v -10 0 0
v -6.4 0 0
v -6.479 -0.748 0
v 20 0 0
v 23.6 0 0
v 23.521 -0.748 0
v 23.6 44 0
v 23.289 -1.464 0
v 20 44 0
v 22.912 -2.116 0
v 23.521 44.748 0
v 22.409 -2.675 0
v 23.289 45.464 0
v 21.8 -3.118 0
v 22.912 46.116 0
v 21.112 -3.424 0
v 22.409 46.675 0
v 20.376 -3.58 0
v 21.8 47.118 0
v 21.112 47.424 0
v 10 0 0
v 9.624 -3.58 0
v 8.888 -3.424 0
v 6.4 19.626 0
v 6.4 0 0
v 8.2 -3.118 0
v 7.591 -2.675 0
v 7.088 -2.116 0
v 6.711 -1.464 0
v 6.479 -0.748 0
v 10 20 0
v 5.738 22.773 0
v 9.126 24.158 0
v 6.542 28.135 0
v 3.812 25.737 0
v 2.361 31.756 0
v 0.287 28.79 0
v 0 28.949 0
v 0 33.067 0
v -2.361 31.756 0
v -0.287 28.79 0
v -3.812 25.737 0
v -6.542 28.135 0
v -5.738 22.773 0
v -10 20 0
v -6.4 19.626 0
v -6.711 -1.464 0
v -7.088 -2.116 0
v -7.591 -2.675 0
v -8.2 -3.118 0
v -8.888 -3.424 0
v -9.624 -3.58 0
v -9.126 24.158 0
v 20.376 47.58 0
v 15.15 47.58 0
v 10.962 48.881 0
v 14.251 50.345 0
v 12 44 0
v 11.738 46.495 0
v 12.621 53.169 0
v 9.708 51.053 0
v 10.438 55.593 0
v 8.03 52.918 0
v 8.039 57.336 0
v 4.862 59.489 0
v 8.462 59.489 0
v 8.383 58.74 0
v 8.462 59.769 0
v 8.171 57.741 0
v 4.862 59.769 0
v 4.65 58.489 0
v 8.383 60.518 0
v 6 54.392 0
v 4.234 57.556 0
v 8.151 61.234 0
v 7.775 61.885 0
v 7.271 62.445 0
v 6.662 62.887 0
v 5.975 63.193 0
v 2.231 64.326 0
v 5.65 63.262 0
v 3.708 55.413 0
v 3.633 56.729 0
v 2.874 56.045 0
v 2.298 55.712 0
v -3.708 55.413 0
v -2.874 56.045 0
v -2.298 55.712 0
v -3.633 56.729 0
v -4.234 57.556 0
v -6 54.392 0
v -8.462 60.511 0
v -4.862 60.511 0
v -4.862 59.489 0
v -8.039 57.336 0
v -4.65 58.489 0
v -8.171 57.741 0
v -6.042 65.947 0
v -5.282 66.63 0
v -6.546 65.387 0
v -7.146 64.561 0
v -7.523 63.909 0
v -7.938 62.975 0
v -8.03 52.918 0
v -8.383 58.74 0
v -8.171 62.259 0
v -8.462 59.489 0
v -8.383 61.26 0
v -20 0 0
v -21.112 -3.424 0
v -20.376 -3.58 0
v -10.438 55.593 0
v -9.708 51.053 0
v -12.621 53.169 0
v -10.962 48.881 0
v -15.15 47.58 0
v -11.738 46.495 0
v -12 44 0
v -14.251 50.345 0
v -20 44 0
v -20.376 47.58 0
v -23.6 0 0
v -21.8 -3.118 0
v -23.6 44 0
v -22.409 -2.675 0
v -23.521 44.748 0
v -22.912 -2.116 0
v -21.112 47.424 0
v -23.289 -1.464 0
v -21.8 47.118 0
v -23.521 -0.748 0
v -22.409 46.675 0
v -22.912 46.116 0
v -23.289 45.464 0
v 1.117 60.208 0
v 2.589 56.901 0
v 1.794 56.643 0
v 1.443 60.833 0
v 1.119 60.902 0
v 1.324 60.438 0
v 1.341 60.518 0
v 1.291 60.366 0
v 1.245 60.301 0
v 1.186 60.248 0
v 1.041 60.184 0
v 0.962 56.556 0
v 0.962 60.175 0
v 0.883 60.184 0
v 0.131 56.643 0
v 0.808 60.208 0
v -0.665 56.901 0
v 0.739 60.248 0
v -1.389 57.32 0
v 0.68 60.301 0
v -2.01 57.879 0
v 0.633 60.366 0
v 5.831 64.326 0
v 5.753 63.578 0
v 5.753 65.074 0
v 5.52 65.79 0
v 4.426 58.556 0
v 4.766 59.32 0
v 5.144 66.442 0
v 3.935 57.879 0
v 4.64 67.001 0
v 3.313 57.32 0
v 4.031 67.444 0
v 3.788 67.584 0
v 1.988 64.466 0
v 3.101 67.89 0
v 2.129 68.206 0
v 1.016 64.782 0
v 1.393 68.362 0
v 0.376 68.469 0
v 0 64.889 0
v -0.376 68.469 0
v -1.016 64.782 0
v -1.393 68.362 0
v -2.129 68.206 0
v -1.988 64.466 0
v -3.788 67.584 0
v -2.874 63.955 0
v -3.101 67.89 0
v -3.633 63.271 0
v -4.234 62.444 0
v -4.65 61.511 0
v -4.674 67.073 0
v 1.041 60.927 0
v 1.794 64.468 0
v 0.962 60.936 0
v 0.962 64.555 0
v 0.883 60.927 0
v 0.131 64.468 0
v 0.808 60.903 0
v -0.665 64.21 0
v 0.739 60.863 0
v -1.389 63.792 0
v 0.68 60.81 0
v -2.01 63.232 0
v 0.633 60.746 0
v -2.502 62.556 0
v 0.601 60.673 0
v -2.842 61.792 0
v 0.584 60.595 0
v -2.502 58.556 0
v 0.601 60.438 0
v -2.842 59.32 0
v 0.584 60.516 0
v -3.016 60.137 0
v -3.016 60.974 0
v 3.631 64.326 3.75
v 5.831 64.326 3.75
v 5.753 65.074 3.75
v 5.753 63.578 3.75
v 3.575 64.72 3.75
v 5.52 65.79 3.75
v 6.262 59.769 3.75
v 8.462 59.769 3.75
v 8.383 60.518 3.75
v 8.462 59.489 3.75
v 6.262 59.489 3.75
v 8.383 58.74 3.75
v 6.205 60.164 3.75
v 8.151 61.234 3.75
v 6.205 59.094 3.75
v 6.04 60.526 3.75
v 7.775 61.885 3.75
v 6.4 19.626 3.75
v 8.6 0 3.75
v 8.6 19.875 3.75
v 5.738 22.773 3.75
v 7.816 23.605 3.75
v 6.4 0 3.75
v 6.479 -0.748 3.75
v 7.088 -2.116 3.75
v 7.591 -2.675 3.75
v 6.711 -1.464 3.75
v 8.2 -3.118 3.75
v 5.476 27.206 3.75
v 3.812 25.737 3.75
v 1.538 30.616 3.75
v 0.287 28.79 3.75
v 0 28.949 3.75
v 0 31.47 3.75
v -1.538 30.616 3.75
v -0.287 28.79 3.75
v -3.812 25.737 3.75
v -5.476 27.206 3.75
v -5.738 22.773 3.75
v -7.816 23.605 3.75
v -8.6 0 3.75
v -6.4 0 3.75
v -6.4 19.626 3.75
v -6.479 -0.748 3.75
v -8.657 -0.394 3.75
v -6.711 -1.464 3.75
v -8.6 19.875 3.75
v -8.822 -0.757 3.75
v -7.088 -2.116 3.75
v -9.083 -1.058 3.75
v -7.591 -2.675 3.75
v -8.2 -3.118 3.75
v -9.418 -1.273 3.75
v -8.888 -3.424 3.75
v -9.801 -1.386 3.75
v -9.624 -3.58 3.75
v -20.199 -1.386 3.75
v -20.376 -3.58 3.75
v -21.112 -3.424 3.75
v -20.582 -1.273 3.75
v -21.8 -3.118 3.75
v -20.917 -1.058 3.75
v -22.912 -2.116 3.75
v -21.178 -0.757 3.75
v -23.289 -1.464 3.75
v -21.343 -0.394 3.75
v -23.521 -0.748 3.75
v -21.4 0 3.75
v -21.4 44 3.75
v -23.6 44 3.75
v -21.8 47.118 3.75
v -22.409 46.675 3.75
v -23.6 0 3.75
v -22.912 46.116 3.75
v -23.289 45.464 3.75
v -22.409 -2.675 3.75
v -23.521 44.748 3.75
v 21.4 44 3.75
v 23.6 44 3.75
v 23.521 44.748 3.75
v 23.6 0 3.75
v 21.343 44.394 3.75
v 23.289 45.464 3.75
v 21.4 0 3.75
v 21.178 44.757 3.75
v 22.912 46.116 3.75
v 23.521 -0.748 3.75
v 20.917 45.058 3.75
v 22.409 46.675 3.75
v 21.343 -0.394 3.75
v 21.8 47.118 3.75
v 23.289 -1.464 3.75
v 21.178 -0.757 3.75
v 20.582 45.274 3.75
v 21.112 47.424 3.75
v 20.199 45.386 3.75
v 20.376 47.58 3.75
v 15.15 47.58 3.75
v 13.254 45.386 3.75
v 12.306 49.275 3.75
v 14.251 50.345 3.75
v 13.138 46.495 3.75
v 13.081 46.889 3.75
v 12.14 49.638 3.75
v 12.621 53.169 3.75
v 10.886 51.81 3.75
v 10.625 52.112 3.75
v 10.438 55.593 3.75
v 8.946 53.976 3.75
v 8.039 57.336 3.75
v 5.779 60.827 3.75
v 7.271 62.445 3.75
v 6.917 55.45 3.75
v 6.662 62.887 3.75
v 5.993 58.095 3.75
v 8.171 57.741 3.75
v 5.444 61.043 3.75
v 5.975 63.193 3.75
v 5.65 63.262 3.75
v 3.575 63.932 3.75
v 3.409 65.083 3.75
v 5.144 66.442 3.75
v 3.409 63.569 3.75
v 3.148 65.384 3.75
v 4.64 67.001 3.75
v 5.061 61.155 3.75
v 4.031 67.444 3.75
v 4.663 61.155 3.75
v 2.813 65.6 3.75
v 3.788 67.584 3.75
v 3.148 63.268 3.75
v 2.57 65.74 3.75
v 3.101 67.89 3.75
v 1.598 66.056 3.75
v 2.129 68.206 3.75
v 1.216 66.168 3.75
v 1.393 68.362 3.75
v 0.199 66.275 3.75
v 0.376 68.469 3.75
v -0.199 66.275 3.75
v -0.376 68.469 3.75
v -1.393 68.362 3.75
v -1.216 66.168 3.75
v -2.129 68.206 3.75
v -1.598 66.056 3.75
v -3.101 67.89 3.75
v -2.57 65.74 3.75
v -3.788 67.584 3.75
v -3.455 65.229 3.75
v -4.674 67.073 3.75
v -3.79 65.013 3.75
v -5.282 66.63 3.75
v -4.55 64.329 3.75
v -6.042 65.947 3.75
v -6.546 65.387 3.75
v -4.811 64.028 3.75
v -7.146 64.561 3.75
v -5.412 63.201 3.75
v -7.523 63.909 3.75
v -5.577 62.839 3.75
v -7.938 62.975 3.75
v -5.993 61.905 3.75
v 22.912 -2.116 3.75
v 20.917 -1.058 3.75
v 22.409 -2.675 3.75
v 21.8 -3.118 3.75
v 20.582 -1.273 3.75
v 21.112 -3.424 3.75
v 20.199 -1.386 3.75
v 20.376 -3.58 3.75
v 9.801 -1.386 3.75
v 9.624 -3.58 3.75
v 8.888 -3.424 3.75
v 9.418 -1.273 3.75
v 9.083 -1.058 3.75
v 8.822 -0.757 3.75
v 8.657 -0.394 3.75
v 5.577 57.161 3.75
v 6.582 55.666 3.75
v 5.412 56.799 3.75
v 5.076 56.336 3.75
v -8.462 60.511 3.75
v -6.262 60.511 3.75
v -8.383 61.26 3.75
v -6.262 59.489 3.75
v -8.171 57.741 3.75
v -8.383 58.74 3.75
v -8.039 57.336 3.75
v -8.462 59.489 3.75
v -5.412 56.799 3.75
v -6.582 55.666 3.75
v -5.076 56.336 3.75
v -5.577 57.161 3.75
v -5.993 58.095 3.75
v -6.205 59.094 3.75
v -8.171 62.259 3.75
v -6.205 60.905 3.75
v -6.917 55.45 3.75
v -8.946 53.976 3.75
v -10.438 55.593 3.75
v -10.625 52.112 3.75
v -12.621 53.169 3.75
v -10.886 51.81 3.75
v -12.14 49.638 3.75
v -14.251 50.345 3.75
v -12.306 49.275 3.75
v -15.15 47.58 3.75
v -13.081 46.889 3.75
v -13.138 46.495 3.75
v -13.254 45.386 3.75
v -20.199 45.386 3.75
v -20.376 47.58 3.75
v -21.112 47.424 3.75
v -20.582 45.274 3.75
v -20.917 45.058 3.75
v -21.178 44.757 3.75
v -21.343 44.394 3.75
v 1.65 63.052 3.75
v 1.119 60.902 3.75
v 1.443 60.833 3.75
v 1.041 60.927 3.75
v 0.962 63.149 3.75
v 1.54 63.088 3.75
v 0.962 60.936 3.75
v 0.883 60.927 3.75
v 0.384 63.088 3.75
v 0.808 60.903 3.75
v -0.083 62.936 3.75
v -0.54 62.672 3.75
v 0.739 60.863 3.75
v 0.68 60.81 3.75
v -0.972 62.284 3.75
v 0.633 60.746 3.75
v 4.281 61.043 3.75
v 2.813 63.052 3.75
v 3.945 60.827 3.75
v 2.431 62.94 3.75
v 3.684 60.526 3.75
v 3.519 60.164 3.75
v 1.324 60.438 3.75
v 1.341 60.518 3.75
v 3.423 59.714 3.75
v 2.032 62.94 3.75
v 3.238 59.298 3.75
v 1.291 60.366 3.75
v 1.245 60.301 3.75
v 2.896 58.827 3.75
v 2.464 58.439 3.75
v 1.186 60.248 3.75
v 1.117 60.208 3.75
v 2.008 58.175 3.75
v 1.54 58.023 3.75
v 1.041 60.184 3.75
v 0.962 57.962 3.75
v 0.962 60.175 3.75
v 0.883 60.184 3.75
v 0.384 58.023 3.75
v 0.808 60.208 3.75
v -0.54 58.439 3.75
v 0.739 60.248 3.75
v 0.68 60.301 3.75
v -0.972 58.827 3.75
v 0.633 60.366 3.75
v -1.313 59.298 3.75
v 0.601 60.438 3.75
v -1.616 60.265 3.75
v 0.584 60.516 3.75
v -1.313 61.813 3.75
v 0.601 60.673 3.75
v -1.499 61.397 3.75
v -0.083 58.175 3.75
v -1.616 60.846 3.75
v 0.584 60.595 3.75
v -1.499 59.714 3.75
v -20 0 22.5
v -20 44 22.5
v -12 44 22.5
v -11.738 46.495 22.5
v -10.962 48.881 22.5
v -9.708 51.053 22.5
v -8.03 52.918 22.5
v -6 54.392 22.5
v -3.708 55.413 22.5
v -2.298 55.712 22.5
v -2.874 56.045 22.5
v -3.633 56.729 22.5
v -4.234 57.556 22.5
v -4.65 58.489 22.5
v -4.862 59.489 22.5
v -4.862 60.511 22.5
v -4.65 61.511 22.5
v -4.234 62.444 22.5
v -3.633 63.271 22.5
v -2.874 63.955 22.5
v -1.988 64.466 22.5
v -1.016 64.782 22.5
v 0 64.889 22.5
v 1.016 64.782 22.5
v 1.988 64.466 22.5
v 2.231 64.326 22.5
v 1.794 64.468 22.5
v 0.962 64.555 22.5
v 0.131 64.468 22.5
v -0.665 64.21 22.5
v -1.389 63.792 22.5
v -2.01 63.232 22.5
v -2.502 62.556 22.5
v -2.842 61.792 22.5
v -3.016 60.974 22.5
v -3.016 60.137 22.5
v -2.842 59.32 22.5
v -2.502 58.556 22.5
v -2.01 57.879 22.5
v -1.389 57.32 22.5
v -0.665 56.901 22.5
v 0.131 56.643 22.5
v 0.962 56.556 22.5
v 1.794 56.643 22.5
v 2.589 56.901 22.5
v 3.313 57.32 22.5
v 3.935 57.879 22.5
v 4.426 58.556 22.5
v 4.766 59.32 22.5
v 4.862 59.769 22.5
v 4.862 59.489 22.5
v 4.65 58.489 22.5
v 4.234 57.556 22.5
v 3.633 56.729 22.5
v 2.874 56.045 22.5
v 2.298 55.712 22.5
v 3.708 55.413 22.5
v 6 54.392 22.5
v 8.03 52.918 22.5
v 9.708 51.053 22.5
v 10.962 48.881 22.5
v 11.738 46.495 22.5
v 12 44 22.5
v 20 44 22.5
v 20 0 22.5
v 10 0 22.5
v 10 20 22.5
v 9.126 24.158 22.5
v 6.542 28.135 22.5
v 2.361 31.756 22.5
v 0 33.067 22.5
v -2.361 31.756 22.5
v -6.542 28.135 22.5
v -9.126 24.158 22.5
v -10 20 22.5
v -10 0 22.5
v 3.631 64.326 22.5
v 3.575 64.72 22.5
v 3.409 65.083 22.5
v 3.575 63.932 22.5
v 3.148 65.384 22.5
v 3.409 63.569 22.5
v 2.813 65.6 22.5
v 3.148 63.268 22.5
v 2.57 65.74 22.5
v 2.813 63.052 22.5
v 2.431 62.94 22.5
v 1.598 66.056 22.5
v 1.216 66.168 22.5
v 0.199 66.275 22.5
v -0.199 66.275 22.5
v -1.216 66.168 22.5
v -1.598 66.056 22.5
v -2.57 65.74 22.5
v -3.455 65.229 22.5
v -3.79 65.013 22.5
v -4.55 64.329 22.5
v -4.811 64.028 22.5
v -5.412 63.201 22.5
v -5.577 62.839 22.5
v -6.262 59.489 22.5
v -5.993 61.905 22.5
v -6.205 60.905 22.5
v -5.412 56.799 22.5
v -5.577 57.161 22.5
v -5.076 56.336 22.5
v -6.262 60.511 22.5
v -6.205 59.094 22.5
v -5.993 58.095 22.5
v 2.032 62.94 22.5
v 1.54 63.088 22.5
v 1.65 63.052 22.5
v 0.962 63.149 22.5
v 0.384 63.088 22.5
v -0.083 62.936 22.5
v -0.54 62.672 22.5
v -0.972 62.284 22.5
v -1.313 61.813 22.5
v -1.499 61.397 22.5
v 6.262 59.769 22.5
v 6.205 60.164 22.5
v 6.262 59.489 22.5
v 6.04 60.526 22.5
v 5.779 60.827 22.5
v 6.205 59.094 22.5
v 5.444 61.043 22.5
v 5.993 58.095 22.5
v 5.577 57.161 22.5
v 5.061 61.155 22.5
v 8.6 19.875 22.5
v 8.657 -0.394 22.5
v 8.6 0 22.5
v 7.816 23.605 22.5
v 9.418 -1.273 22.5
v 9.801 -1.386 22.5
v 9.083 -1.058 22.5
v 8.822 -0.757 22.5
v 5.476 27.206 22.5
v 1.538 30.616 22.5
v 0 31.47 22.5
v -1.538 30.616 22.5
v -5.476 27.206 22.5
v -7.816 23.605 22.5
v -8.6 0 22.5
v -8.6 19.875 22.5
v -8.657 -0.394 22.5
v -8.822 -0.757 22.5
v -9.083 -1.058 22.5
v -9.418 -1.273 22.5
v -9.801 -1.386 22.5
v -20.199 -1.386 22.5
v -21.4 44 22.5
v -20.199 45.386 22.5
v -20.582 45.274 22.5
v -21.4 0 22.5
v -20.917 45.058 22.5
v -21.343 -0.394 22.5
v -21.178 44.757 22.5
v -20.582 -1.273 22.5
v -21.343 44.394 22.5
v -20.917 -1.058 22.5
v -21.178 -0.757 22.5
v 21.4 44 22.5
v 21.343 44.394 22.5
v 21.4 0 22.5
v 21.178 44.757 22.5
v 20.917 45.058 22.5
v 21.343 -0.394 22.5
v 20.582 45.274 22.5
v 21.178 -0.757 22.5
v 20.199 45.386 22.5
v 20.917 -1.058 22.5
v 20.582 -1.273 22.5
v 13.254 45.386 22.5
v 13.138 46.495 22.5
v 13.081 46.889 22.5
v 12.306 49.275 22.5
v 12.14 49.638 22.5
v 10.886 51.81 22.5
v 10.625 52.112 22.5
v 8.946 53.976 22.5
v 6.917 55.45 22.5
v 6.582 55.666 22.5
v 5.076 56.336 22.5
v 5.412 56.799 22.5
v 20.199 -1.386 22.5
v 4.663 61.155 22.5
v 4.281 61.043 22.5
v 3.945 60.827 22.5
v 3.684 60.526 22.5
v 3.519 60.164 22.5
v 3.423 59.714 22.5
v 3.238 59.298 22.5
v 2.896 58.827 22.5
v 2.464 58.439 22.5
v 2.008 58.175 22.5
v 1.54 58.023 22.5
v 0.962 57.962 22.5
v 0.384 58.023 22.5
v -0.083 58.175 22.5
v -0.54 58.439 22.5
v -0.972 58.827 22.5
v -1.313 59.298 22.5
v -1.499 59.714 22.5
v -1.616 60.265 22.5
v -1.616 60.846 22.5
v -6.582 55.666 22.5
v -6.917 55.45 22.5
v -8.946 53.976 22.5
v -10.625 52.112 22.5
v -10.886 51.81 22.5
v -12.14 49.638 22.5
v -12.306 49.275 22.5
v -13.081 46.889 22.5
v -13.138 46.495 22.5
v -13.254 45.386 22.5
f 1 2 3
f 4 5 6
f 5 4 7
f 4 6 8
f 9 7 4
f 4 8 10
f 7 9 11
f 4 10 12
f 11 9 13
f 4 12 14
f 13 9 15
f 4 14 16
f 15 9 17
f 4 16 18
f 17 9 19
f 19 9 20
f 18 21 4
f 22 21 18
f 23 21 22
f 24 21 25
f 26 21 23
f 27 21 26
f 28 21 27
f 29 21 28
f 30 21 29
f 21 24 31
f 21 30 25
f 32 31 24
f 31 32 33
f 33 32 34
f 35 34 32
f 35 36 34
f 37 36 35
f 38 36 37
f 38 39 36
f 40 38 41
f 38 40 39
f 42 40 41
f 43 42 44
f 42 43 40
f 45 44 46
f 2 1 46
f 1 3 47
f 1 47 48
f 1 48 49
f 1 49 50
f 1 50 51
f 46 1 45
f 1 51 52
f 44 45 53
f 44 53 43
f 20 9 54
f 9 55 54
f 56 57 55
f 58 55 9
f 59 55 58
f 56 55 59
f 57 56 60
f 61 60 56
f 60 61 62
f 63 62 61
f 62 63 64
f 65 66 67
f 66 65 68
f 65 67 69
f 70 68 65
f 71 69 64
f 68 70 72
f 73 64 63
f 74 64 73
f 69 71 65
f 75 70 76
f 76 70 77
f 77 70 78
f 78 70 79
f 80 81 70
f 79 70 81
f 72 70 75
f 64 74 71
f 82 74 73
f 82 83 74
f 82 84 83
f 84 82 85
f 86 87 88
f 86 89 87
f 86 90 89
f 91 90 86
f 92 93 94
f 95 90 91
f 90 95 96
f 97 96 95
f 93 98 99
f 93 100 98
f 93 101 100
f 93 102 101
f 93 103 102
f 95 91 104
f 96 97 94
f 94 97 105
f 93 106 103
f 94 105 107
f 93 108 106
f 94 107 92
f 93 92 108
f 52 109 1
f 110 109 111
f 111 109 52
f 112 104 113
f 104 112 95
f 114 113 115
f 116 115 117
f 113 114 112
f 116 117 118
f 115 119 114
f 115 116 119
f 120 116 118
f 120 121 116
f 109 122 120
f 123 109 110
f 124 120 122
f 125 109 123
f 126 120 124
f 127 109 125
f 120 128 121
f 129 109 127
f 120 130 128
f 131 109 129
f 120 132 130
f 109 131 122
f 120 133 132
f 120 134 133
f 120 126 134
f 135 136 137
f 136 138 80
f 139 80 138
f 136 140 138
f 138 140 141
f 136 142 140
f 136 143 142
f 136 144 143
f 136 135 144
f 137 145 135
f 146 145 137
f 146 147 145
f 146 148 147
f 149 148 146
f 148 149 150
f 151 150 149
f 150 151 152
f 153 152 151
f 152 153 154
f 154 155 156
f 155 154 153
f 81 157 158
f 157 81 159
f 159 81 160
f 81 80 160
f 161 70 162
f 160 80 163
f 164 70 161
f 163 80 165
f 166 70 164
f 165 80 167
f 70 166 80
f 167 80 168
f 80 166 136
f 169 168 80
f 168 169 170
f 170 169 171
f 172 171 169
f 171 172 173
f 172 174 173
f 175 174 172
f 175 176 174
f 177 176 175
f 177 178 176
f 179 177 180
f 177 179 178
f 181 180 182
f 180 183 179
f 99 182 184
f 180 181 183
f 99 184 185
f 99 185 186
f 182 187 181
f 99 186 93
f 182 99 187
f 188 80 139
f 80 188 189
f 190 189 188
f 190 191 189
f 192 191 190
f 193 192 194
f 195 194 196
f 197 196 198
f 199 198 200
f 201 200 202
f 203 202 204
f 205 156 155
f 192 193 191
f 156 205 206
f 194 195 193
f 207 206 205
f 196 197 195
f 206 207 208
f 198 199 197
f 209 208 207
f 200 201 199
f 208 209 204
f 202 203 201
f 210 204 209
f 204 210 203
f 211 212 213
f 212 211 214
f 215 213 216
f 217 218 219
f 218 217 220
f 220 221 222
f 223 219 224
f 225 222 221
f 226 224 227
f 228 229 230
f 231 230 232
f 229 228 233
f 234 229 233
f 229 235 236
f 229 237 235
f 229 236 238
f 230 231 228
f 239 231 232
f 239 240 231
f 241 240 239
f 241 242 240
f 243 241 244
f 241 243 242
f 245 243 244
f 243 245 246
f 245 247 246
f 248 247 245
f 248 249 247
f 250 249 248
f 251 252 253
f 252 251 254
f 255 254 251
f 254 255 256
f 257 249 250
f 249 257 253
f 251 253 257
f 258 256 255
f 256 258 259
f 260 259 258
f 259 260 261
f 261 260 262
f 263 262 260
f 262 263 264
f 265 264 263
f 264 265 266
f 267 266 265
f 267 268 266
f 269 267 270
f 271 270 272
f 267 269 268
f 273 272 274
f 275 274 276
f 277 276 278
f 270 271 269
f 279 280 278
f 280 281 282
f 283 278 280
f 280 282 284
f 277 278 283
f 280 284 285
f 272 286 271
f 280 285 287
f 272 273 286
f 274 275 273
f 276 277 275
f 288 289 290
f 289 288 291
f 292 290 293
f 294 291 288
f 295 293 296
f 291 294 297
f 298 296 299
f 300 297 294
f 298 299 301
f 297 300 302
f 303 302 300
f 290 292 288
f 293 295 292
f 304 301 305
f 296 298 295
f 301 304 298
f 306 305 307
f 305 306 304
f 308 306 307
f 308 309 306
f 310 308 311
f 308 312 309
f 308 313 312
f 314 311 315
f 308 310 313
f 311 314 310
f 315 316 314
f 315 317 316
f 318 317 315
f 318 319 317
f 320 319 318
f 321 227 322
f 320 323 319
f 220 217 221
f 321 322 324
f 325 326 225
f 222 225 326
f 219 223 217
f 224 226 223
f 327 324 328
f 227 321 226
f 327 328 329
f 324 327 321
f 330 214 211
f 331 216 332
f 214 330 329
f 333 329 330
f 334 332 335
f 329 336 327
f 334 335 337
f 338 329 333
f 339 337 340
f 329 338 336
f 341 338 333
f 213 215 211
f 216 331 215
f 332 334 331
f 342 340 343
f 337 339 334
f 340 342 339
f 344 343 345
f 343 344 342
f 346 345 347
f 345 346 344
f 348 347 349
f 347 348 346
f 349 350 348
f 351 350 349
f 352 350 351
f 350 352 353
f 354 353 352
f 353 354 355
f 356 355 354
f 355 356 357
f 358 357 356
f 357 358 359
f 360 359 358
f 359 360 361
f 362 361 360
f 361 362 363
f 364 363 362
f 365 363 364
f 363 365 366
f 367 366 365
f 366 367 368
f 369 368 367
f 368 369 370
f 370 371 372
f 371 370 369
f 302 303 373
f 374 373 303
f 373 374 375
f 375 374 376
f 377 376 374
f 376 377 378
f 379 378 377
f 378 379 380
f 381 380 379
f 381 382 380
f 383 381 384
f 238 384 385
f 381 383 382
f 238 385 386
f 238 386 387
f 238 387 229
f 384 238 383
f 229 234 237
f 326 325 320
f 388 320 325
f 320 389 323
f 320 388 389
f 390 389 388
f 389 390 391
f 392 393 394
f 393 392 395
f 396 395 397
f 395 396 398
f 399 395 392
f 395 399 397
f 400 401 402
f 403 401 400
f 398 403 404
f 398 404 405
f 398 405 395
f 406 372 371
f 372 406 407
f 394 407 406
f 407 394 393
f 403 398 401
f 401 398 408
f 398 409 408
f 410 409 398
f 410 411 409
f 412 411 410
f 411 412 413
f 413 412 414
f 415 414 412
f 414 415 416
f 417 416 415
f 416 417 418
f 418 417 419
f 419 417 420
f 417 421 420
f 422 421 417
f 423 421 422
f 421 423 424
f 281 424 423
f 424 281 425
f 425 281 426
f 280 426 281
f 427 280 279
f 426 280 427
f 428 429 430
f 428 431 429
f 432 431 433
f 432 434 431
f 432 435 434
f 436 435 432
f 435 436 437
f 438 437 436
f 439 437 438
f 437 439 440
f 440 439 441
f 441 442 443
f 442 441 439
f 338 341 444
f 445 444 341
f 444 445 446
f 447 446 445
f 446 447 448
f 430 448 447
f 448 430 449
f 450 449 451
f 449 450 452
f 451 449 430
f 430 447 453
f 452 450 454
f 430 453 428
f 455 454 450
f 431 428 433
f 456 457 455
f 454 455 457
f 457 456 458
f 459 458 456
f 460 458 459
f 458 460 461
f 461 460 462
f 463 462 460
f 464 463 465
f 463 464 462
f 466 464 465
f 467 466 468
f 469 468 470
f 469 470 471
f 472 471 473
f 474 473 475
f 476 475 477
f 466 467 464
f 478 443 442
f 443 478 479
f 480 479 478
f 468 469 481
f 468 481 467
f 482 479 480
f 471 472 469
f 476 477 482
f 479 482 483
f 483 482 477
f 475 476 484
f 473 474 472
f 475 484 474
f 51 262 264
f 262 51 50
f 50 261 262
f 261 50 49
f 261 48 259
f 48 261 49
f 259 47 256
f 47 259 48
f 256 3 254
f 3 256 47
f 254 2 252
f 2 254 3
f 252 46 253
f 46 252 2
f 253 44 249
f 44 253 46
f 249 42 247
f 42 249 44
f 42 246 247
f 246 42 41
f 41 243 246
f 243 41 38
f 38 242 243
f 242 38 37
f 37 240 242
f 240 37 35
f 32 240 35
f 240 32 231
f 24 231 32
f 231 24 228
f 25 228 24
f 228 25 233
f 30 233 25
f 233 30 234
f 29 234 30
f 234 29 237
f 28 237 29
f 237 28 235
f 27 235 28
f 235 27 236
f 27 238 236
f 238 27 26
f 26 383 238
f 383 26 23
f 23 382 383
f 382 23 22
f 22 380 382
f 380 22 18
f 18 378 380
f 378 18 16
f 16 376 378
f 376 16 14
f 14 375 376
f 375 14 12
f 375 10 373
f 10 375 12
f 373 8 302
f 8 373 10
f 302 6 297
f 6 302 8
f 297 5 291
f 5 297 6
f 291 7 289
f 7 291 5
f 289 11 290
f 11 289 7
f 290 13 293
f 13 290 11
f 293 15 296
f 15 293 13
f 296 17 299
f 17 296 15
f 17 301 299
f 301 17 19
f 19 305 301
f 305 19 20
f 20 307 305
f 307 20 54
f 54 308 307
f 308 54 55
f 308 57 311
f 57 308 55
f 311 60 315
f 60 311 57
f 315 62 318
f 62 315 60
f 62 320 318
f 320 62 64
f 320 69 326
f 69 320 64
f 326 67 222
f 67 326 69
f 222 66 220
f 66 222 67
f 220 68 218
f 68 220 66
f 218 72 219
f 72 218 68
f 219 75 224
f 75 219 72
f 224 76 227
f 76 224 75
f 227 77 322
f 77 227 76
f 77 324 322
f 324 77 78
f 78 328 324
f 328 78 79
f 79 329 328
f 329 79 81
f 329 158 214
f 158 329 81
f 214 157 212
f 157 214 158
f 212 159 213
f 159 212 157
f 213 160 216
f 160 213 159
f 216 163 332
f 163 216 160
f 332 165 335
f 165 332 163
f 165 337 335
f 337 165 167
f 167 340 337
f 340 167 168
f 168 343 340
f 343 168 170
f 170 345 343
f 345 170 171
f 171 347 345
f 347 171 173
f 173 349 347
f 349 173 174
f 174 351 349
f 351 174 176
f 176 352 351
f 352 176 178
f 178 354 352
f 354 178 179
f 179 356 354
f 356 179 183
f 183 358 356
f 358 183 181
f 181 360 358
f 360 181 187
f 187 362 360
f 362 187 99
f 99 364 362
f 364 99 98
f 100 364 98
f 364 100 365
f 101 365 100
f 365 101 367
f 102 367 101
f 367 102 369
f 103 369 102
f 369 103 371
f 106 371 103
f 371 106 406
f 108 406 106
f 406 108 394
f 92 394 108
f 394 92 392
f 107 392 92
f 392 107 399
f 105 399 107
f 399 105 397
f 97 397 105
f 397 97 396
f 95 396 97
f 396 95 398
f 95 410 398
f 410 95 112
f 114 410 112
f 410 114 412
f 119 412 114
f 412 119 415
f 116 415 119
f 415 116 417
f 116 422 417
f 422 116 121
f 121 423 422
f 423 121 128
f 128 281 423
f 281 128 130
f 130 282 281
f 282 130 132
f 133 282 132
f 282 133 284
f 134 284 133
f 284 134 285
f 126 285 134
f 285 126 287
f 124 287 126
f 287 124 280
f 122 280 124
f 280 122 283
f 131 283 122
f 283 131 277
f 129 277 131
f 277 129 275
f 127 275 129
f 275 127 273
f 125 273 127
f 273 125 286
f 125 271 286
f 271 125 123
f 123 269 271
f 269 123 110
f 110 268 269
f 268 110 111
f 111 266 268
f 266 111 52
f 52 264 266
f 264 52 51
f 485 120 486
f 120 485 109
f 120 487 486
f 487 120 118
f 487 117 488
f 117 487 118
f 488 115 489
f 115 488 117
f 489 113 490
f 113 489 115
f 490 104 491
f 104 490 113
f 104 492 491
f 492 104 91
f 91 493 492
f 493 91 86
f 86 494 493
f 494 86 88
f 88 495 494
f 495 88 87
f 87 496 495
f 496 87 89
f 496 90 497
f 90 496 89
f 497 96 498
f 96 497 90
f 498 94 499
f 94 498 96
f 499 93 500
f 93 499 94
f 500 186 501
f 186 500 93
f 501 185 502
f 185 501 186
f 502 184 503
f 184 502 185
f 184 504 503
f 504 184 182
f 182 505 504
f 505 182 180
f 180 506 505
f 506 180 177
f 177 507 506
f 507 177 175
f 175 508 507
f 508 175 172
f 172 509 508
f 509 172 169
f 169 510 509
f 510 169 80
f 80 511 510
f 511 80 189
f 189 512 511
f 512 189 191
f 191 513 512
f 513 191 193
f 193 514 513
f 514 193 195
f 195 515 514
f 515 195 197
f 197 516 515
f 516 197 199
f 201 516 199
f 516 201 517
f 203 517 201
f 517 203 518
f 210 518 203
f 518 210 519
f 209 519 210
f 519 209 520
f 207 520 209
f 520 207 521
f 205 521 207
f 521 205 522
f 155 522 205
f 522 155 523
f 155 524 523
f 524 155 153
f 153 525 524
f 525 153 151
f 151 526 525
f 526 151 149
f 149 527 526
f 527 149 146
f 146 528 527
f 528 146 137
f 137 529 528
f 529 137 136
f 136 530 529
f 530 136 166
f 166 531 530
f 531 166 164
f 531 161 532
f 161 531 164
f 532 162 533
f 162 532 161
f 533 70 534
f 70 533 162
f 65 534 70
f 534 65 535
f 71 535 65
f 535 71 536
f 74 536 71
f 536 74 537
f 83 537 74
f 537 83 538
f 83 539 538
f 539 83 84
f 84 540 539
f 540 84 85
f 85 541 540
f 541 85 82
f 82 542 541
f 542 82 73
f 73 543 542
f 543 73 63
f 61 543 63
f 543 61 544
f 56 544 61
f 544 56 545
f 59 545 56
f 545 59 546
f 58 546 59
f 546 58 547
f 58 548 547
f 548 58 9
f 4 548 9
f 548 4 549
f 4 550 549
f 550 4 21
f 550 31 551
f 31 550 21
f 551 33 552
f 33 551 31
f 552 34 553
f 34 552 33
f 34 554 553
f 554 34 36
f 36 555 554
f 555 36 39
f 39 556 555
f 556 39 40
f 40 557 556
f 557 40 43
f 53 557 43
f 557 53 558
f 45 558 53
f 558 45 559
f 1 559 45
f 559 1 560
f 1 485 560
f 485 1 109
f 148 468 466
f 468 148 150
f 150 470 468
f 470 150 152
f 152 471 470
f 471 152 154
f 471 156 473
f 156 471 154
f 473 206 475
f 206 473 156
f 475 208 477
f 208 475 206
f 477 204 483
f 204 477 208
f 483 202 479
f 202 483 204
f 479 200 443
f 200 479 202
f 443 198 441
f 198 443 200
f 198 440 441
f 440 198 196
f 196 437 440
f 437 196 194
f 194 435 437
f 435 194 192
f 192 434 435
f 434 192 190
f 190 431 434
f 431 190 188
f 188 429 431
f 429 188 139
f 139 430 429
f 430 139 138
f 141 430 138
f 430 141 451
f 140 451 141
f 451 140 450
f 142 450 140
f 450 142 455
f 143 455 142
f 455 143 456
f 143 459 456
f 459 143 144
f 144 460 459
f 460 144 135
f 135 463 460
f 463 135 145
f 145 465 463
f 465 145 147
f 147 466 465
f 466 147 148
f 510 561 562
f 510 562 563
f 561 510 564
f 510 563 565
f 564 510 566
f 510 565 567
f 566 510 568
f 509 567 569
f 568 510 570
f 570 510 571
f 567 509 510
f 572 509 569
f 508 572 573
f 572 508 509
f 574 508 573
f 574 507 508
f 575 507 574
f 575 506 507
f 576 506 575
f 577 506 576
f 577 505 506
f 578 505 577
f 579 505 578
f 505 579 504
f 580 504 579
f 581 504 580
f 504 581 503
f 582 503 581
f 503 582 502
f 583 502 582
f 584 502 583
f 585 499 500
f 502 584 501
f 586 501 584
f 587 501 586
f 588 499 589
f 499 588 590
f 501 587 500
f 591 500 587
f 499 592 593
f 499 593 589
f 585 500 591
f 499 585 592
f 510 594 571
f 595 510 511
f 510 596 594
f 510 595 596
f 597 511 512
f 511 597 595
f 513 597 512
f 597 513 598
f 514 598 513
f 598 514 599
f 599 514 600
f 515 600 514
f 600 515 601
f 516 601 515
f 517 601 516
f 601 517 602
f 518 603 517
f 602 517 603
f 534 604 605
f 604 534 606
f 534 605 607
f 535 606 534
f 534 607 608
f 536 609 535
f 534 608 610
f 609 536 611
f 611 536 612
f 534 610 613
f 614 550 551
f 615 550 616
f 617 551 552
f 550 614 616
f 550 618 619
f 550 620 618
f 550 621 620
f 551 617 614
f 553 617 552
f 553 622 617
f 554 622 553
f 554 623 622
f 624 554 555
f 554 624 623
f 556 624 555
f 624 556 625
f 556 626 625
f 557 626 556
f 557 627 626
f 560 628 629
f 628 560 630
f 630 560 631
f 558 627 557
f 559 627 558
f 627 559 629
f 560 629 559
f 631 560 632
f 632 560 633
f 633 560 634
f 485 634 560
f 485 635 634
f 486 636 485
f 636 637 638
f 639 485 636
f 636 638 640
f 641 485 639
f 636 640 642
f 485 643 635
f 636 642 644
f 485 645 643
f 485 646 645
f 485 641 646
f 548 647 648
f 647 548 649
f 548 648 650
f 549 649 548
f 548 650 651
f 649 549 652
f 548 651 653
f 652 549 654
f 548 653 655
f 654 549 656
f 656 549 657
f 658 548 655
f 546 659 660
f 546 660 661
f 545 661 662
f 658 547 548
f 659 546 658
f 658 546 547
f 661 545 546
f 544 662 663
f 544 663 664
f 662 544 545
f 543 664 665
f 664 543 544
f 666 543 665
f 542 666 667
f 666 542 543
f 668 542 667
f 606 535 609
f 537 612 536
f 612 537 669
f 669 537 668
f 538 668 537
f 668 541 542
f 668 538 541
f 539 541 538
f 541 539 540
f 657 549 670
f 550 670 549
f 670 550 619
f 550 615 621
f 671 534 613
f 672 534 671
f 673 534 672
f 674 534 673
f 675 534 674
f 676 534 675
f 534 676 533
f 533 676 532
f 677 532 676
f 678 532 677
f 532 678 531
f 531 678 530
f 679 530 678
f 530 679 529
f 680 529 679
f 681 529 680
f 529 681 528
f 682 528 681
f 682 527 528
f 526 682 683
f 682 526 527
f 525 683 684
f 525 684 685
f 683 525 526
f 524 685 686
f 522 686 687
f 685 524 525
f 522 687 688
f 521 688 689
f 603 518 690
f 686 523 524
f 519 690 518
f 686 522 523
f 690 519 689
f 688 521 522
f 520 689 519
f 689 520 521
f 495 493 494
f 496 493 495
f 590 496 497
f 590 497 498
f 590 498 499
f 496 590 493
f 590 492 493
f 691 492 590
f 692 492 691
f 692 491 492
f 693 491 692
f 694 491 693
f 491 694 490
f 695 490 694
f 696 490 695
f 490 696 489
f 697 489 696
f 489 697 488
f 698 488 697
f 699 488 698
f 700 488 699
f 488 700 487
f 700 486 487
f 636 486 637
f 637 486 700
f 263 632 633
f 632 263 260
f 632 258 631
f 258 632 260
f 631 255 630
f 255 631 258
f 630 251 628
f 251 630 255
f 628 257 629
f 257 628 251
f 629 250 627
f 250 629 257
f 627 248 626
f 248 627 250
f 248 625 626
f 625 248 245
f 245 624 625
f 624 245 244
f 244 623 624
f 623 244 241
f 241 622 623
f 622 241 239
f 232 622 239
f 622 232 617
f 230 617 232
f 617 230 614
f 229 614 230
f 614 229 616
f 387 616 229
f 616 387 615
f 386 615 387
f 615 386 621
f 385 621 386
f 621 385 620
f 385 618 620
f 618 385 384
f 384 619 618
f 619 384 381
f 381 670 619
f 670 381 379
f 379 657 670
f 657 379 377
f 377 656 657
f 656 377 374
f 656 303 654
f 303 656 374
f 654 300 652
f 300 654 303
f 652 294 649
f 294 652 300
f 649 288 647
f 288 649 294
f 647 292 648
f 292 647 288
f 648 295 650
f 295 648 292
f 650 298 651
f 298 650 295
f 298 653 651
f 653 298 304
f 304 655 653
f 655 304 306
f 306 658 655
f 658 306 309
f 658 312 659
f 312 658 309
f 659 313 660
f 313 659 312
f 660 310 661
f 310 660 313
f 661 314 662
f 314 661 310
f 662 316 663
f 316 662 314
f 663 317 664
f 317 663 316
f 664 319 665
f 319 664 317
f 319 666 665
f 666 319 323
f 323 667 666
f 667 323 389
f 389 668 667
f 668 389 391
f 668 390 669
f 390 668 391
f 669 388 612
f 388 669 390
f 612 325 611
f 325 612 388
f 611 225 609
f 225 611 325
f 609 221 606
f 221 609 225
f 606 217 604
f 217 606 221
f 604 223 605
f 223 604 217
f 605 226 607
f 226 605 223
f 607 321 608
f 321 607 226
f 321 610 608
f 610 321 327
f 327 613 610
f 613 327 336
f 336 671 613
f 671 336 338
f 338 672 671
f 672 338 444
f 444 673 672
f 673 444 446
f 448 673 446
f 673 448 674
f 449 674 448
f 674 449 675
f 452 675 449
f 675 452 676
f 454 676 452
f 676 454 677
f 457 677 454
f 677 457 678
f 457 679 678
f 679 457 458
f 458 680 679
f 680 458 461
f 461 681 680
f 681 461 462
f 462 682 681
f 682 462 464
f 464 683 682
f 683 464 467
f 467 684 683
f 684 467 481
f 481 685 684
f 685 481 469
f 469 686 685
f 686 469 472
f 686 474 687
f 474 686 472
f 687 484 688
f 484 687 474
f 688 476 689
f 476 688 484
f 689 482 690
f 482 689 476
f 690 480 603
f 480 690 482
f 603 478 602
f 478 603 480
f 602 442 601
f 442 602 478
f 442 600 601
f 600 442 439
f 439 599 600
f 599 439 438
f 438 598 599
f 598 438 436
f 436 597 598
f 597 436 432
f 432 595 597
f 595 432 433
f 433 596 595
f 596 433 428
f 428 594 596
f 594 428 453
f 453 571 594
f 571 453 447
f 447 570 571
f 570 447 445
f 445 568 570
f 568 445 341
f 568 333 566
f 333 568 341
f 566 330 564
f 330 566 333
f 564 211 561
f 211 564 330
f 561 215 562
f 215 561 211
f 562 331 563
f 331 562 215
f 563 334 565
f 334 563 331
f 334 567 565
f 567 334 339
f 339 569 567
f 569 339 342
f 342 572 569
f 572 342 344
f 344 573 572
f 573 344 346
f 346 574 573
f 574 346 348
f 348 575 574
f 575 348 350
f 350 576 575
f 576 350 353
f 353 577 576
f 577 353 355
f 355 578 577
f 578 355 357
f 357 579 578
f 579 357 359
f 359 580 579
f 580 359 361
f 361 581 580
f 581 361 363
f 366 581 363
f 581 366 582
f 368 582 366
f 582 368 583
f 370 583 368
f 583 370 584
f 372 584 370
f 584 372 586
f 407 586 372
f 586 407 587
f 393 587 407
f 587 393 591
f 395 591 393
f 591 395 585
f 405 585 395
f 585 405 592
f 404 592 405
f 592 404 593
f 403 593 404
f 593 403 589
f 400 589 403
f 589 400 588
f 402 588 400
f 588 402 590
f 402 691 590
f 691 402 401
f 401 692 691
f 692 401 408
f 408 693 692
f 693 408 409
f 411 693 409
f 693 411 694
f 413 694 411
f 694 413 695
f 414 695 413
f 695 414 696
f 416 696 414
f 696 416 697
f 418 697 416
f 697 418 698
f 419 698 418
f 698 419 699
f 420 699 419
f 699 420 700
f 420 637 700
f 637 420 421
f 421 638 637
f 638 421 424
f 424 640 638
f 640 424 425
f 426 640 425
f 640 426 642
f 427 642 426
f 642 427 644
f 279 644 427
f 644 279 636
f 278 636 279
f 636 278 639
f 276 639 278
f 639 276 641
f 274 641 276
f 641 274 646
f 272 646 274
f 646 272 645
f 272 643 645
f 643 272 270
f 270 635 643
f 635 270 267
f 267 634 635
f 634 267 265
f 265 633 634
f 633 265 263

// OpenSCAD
// file: Common.scad
module offset_shell(thickness = 0.1) {
  render() {
      difference() {
          minkowski() {
            children();
            circle(2* thickness, center=true);
          }
        children();
      }
   }
}

module cookie_cutter(handle_thickness=8, cutter_tickness=3, total_height=15) {
    union() {
        linear_extrude(height = total_height*(0.15), slices = 60) {
            scale([.2,.2,1]) {
              offset_shell(handle_thickness) {
                children();

              }
            }
        };
        linear_extrude(height = total_height*(0.9), slices = 60)
            translate([0,0,2])
            scale([.2,.2,1]) {
              offset_shell(cutter_tickness) {
                children();
            }
        };
    }
}

module rod_with_clipped_circle(square_d, circle_d, circle_placement) {
    difference() {
        square(square_d, center=true);
        translate(circle_placement) circle(circle_d, center=true);
    }
}

//module cookie_press(handle_thickness=2.5, cutter_tickness=1, total_height=10) {
//    union() {
//        cookie_cutter(handle_thickness, cutter_tickness, total_height);
//        translate([0,0,10]) children();
//    }
//}
//
//
// file: ../ComplexShapes.scad
include <BasicShapes.scad>

module HalfCylinder(r, h, e=1, center=false) {
    translate([0,0, center ? -h/2 : 0])difference(){
        cylinder(h,r,r);
        translate([0,-r,-e])cube([2*r,2*r,h+2*e]);
    }
}

module HalfCircle(r) {
    difference(){
        circle(r);
        translate([-r,-2*r,0]) square(2*r);
    }
}

// http://benjamin-engel.blogspot.com/2015/07/openscad-tips-and-tricks.html

module equilateral_triangle(h) {
    rotate([0,0,-30]) circle(r=h, $fn=3);
}

module Crescent(r, fatten_scale=1, curve_angle=0, rotate=0) {
    r_prime = r / fatten_scale;
    rotate([0,0,rotate]) difference() {
        circle(r_prime*1.1);
        translate([r_prime/4, curve_angle*r_prime/4, 0]) circle(r_prime*fatten_scale);
    }
}


module round_edges(r) {
    minkowski() {
        children();
        circle(r);
    };
}

module CrescentV2(outer_r, inner_r, r_shift, edge_rounding=2) {
    // Different way to construct ... rounded edges ...
   round_edges(edge_rounding) {
        difference() {
            circle(outer_r);
            translate(r_shift) circle(inner_r);
        };
    };
}


//module Arch(x,y,r) {
//    // http://kitwallace.co.uk/Blog/item/2013-01-28T17:59:00Z
//    union() {
//        intersection() {
//           translate([x,y,0]) circle(r);
//           translate([-x,y,0]) circle(r);
//        }
//        translate([0,y/2,0]) square(size=[2 * (r-x), y], center=true);
//    }
//}

module Arch(width, arc_height, strech_height=0) {
    // http://kitwallace.co.uk/Blog/item/2013-01-28T17:59:00Z
    r = arc_height;
    x = (width / 2) - r;
    y = arc_height + strech_height;
    union() {
        intersection() {
           translate([x,y,0]) circle(r);
           translate([-x,y,0]) circle(r);
        }
        translate([0,y/2,0]) square(size=[width, y], center=true);
    }
}
// file: ../BasicShapes.scad
module Star(points, outer, inner_defaulted=0) {
    inner = inner_defaulted == 0 ? 2 * outer  : inner_defaulted;
	// polar to cartesian: radius/angle to x/y
	function x(r, a) = r * cos(a);
	function y(r, a) = r * sin(a);
	
	// angular width of each pie slice of the star
	increment = 360/points;
	
	union() {
		for (p = [0 : points-1]) {
			
			// outer is outer point p
			// inner is inner point following p
			// next is next outer point following p

			assign(	
                x_outer = x(outer, increment * p),
                y_outer = y(outer, increment * p),
                x_inner = x(inner, (increment * p) + (increment/2)),
                y_inner = y(inner, (increment * p) + (increment/2)),
                x_next  = x(outer, increment * (p+1)),
                y_next  = y(outer, increment * (p+1))
            ) {
				polygon(
                    points = [
                        [x_outer, y_outer], 
                        [x_inner, y_inner],
                        [x_next, y_next], 
                        [0, 0]
                    ], 
                    paths  = [[0, 1, 2, 3]]
                );
			}
		}
	}
}

//https://github.com/openscad/MCAD/blob/master/shapes.scad
module Hexagon(size) {
  Star(3, size, size);
}

module Octagon(size) {
  Star(4, size, size);
}

module Decagon(size) {
  Star(5, size, size);
}

module Decagon(size) {
  Star(5, size, size);
}

module Dodecagon(size) {
  Star(6, size, size);
}
// main file
include <../BasicShapes.scad>
include <../ComplexShapes.scad>
include <Common.scad>

// How do I make a shell???
// Apporach 1 ... manually trying to strech an image ...
//module MosqueShell(width, shell_thickness=0.05) {
//
//    difference() {
//        scale([1.05,1.05,1]) translate([0,0,0]) Mosque(width, 0.2, 2.0);
//        translate([0,1,0]) Mosque(width, door_scale=.24, crescent_scale=1.25, crescent_rotation=17.5);
//
//   }

//}
// Approach 2 ... doing this ...

module Door() {
    difference(){
        translate([ 0,0,0])color("green")Arch(13, 13);
        translate([ 0,0.5,0])Arch(12, 12);
    }
}

module Mosque(width, door_scale=0.25, door_stretch=0, crescent_scale=1, crescent_rotation=0) {
    crescent_size = width/10;
    arc_factor = width/2;

    square_height =  width+(width/10);
    crescent_height = crescent_size;
    arc_height = 1.5*width/5 ;
    total_height = square_height + arc_height + crescent_height;
//    echo(total_height, width, total_height/width);

    union() {
        translate([0,square_height+arc_height+crescent_height,0])
            Crescent(crescent_size, crescent_scale, rotate=crescent_rotation);
        difference() {
            translate([-width/2,0,0])square([width, width+(width/10)]);
            scale([2,1,1]) Arch(width*door_scale,2*width*door_scale, door_stretch);
        }
        translate([0,square_height,0]) scale([1.5,1.5,1]) HalfCircle(width/5);
    }
}

cookie_cutter(9,3.5,25) {
    Mosque(200, crescent_scale=0.9, crescent_rotation=30);
}


////Mosque(20);
